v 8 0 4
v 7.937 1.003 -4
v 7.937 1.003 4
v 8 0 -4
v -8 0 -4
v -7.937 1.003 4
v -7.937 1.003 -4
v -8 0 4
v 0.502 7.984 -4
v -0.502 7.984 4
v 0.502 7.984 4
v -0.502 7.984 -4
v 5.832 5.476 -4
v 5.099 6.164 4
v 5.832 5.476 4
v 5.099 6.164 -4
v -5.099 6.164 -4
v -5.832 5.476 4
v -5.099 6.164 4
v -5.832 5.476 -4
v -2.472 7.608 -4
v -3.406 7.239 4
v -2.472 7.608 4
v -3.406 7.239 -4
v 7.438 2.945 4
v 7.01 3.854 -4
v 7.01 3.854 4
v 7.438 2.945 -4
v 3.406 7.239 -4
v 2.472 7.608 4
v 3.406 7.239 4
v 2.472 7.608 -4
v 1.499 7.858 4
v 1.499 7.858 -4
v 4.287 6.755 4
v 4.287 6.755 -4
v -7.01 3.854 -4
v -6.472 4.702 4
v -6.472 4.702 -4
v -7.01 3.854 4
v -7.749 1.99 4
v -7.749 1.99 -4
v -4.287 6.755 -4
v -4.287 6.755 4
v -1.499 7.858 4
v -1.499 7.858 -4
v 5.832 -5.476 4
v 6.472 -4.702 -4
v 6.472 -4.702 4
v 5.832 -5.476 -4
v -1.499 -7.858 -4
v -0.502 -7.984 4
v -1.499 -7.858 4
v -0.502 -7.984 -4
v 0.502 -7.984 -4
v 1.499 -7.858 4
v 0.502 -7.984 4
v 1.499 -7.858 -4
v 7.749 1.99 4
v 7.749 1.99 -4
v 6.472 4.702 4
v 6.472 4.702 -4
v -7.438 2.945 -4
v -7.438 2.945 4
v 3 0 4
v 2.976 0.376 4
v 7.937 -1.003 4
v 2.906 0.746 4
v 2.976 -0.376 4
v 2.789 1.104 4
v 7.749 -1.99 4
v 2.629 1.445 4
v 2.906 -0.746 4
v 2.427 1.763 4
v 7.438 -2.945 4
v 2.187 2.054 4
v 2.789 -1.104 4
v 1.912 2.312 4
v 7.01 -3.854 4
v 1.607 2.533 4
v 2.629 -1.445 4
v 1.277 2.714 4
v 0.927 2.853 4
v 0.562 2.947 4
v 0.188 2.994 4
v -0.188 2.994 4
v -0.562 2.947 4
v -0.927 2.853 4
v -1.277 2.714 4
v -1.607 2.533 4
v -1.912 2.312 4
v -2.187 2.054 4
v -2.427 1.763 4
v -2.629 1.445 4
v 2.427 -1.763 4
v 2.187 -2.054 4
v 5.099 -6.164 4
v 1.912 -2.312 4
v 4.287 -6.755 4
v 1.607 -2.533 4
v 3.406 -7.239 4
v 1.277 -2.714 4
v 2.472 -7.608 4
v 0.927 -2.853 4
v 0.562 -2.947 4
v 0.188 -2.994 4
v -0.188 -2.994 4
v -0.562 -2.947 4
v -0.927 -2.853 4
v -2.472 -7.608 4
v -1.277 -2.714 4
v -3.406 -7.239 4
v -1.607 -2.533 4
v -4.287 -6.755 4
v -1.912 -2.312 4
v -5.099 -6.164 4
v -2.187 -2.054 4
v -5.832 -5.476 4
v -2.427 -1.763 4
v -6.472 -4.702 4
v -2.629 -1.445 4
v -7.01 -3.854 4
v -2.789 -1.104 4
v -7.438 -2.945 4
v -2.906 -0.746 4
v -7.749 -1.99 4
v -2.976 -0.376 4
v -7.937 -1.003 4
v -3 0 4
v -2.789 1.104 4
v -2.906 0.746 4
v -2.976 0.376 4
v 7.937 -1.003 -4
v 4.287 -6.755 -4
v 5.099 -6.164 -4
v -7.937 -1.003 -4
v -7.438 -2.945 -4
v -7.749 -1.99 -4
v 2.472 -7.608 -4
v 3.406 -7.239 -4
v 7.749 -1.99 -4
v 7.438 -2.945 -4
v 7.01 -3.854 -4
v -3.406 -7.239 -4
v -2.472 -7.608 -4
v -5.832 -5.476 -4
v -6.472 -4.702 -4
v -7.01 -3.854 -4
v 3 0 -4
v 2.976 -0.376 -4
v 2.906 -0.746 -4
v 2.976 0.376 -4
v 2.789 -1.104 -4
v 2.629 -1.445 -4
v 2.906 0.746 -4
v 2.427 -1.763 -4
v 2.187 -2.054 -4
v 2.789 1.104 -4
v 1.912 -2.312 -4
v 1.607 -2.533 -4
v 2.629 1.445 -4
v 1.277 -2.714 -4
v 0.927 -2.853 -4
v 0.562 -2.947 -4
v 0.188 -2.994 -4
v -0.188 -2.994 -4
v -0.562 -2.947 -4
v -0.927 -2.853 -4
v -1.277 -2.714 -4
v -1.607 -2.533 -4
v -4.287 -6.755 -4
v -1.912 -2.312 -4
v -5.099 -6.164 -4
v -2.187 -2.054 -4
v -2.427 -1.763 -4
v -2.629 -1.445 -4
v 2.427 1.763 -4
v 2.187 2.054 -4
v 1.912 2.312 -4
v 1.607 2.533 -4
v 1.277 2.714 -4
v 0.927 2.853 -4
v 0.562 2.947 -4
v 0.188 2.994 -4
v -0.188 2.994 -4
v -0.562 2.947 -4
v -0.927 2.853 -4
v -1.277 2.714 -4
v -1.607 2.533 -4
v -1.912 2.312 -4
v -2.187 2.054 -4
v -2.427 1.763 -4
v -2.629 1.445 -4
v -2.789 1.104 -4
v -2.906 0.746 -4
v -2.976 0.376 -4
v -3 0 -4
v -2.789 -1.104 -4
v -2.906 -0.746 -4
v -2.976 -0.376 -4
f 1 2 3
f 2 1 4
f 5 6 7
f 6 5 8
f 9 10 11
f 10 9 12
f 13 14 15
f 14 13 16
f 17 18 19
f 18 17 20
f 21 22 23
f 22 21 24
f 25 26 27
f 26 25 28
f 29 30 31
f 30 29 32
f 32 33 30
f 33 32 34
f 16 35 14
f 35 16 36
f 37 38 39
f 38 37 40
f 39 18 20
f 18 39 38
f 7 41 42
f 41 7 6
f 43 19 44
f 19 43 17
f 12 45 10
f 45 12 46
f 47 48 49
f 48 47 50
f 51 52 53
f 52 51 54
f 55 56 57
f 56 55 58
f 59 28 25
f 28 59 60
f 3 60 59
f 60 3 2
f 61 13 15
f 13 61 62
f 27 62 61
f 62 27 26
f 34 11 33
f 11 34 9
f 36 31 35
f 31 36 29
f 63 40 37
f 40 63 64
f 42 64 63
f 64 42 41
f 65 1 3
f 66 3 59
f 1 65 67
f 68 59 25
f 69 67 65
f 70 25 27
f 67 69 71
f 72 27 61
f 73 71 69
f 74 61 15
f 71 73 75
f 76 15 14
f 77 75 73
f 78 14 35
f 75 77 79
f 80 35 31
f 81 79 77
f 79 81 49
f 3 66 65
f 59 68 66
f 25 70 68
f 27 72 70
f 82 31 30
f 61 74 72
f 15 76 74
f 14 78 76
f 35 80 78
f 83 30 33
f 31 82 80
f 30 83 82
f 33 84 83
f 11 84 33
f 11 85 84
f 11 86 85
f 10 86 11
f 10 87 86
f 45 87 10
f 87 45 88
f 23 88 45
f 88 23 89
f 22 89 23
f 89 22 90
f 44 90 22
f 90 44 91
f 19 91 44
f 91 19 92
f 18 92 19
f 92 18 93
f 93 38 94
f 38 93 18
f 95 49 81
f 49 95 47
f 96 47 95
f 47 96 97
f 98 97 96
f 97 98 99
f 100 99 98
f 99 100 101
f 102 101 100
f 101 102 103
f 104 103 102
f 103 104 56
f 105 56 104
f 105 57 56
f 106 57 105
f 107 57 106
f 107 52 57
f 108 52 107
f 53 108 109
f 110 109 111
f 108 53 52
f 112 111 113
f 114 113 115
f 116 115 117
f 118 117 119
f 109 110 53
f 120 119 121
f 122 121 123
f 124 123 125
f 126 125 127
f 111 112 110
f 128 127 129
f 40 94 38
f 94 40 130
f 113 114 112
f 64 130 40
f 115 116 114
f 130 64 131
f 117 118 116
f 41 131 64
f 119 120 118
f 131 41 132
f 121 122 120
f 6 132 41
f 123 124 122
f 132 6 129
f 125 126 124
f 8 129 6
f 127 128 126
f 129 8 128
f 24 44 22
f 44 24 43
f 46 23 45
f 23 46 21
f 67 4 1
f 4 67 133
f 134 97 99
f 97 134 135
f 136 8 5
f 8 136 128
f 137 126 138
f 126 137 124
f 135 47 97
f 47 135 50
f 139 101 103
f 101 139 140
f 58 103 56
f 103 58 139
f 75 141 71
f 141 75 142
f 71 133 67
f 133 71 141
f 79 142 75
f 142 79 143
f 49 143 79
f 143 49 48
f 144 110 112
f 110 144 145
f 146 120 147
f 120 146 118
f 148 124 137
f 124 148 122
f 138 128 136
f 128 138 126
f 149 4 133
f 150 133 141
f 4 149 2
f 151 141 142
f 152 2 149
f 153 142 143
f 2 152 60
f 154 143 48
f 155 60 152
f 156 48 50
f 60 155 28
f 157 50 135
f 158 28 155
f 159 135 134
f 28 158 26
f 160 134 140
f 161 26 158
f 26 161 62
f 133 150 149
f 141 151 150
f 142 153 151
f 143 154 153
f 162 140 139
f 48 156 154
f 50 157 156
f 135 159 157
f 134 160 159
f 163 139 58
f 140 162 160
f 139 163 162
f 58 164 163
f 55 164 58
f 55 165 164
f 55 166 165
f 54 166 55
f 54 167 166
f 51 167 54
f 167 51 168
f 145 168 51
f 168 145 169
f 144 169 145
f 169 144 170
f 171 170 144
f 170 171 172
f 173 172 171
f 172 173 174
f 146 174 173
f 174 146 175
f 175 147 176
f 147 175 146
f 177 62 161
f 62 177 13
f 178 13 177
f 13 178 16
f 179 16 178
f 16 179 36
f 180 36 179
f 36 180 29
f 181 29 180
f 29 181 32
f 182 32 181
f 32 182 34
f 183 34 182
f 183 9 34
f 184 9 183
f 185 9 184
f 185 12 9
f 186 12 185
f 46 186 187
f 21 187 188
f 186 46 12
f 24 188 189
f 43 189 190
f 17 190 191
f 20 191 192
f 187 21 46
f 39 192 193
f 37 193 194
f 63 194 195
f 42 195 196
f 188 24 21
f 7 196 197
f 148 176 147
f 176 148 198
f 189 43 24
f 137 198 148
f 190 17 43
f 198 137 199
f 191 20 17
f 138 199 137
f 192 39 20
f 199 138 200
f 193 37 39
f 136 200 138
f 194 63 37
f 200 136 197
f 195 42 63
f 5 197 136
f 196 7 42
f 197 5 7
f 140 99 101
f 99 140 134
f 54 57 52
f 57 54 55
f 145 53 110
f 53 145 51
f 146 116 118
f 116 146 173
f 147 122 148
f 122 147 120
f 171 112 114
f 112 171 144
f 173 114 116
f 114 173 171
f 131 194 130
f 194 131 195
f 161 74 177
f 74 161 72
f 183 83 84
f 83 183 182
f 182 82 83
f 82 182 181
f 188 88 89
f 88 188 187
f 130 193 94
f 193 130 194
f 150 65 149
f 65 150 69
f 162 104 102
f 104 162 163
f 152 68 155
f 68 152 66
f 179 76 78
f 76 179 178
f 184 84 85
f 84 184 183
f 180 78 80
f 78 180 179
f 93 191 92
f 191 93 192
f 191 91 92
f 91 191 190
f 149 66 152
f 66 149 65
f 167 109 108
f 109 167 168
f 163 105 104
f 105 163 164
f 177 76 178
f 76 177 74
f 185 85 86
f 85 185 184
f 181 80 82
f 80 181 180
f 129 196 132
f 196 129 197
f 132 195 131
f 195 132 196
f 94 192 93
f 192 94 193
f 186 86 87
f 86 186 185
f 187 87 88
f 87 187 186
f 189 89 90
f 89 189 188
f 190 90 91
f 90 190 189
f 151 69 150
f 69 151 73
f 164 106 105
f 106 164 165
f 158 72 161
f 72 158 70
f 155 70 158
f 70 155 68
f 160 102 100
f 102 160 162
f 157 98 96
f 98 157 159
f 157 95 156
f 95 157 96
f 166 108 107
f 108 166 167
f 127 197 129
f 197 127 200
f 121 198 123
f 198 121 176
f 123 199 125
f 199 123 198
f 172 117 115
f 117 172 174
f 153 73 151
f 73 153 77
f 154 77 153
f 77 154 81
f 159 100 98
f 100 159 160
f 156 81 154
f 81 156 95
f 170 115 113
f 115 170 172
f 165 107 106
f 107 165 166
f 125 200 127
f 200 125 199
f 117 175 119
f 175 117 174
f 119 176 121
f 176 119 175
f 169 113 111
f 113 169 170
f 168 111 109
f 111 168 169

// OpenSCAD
$fn = 50;


difference() {
	union() {
		translate(v = [0, 0, -4.0000000000]) {
			cylinder(h = 8, r = 8.0000000000);
		}
	}
	union() {
		translate(v = [0, 0, -100.0000000000]) {
			cylinder(h = 200, r = 3.0000000000);
		}
	}
}
